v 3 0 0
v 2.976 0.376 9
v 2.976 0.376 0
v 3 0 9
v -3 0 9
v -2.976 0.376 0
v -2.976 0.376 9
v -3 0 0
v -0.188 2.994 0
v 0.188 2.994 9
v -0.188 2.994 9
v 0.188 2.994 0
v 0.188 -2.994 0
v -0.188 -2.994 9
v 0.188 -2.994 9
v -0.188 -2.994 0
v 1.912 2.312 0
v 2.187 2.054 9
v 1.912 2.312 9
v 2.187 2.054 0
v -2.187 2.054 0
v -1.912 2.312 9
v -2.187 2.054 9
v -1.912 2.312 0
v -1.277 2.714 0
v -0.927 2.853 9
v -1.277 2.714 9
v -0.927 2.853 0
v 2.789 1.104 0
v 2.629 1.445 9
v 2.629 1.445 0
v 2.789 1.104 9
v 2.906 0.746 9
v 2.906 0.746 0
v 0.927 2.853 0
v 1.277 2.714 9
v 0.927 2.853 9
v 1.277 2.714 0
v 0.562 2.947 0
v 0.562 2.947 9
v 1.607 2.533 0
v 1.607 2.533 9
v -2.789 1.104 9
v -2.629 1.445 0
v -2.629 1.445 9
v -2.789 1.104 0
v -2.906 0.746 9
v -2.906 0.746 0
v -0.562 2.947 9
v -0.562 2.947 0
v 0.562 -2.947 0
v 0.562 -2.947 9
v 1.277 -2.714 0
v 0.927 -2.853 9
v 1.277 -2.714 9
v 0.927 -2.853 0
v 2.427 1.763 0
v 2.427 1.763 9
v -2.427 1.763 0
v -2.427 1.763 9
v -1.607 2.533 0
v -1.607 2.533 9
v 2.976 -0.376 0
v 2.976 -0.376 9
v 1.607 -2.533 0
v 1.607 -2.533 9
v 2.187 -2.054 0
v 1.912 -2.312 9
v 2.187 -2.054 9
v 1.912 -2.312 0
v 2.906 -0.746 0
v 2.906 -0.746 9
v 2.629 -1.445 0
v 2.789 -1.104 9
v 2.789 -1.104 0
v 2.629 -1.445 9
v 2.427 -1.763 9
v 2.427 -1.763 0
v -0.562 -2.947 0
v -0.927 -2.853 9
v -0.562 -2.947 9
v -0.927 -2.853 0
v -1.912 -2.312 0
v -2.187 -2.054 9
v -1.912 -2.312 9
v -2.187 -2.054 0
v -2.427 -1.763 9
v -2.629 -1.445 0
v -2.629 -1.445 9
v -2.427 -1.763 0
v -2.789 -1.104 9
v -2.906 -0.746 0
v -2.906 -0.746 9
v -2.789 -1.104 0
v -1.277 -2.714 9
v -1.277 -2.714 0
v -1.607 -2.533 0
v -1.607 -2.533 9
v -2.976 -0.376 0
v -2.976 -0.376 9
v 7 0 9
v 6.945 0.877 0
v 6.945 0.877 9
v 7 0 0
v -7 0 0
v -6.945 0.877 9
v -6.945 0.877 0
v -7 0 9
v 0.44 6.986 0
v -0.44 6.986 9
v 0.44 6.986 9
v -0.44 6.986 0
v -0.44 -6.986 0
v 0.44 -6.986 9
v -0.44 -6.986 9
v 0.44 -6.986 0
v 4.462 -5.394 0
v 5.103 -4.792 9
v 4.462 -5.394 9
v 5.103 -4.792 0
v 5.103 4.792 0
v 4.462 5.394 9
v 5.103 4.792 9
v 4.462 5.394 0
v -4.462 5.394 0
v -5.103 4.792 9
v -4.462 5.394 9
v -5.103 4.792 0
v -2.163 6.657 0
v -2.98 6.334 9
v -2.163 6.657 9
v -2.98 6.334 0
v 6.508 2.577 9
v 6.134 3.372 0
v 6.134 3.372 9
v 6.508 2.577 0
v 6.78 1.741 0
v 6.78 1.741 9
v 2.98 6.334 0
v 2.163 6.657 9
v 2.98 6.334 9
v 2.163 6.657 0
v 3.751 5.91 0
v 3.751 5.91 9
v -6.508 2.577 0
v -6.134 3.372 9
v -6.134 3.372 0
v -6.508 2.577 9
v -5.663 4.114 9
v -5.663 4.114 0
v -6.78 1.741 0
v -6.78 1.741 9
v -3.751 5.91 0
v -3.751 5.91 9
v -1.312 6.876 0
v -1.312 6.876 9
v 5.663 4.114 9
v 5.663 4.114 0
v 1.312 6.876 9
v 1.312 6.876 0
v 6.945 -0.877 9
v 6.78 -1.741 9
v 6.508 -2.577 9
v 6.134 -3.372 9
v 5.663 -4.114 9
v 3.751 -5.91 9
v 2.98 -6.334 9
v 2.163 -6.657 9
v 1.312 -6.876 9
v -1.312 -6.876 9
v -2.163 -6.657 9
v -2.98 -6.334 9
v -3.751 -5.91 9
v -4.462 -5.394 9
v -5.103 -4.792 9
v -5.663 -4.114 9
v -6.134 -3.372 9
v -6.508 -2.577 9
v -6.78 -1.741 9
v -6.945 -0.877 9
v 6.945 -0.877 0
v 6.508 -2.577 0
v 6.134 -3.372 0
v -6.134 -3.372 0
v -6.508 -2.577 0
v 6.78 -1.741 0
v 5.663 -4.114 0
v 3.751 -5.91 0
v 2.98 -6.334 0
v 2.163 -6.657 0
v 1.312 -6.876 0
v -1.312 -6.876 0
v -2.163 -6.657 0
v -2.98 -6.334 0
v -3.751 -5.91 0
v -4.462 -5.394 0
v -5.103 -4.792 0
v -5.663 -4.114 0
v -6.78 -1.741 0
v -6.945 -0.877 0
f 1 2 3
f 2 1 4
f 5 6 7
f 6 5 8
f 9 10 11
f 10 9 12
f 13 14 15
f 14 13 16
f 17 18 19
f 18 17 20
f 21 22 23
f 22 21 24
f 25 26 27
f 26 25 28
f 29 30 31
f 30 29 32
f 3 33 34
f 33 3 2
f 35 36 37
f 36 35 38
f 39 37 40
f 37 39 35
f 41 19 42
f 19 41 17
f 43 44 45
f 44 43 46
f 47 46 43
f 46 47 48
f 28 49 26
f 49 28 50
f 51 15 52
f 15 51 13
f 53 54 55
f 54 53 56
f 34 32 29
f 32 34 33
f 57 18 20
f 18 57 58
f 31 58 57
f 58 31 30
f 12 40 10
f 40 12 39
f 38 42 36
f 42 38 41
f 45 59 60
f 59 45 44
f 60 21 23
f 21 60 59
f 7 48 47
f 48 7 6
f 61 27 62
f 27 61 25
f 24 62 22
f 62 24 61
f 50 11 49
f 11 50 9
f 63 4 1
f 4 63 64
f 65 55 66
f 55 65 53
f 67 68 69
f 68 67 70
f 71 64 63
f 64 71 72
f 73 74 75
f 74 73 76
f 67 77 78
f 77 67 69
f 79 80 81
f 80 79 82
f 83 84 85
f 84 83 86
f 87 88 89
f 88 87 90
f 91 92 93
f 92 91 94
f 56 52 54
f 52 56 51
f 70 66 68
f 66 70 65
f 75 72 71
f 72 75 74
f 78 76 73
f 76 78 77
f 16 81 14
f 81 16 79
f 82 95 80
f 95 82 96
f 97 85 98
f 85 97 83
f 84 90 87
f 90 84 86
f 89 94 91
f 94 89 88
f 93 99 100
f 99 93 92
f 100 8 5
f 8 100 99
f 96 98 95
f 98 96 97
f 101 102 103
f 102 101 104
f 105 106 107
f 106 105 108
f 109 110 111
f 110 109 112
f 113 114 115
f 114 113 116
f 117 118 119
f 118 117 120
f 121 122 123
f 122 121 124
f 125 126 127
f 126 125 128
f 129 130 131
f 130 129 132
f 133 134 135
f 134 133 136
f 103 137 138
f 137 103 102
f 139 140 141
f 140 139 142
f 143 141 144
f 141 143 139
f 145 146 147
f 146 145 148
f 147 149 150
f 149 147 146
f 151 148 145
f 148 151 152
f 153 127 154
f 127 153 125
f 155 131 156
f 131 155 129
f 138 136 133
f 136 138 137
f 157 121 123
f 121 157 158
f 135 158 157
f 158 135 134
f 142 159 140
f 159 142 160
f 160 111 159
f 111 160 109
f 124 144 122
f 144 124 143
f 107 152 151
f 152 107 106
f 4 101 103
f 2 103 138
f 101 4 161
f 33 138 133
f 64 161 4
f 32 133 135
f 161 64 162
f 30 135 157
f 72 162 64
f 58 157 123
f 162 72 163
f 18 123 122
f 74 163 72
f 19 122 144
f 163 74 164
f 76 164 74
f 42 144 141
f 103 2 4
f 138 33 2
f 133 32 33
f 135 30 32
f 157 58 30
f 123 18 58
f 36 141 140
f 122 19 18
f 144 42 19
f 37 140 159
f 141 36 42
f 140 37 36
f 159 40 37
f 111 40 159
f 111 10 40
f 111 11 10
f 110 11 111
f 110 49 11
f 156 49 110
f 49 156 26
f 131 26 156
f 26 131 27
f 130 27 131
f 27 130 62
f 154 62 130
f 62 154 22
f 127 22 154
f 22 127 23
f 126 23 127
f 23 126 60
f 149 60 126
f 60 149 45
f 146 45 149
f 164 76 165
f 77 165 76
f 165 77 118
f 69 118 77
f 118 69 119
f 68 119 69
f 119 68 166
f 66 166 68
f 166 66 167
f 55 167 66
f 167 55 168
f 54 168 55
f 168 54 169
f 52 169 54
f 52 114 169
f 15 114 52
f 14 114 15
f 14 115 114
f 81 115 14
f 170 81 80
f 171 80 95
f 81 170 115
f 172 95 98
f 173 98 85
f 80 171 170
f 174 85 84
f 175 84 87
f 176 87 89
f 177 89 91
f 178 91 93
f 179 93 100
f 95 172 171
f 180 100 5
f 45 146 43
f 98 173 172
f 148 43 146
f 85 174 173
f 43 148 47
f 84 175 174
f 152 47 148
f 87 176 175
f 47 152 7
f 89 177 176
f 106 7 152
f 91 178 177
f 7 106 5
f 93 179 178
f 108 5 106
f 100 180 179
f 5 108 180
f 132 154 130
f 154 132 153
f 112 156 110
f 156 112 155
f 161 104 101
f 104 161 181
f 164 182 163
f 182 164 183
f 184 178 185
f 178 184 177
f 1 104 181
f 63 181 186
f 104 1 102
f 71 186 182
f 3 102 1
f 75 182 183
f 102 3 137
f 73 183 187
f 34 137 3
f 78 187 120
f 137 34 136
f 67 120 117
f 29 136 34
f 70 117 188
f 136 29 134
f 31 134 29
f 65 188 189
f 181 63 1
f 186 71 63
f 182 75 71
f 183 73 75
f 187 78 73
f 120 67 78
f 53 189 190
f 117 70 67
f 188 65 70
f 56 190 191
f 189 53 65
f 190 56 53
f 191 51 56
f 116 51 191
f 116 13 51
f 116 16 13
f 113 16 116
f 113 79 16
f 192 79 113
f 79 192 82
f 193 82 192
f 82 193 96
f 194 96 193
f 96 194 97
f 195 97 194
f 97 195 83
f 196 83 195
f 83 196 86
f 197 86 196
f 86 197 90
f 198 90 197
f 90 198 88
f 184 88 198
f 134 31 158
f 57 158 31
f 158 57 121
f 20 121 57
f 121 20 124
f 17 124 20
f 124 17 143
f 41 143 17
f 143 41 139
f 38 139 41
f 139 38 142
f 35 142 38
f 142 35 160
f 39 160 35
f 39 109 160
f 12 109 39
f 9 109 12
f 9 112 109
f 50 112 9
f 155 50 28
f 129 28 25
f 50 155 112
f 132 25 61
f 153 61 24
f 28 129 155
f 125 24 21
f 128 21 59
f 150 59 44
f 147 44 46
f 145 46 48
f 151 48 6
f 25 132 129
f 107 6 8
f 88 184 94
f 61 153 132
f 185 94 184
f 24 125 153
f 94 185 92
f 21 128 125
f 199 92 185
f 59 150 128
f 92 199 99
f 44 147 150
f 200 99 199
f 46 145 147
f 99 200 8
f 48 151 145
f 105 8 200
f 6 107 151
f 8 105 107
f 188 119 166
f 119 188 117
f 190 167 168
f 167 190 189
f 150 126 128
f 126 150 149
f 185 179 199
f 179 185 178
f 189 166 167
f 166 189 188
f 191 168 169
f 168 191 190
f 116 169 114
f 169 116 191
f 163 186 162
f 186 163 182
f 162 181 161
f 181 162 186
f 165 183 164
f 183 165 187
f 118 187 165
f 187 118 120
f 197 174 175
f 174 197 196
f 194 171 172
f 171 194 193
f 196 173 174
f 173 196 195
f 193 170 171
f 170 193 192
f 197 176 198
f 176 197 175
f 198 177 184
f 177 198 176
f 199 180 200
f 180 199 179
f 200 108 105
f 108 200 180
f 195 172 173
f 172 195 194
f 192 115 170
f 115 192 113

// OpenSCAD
$fn = 50;


difference() {
	union() {
		cylinder(h = 9, r = 7.0000000000);
	}
	union() {
		translate(v = [0, 0, -100]) {
			cylinder(h = 200, r = 3.0000000000);
		}
	}
}
